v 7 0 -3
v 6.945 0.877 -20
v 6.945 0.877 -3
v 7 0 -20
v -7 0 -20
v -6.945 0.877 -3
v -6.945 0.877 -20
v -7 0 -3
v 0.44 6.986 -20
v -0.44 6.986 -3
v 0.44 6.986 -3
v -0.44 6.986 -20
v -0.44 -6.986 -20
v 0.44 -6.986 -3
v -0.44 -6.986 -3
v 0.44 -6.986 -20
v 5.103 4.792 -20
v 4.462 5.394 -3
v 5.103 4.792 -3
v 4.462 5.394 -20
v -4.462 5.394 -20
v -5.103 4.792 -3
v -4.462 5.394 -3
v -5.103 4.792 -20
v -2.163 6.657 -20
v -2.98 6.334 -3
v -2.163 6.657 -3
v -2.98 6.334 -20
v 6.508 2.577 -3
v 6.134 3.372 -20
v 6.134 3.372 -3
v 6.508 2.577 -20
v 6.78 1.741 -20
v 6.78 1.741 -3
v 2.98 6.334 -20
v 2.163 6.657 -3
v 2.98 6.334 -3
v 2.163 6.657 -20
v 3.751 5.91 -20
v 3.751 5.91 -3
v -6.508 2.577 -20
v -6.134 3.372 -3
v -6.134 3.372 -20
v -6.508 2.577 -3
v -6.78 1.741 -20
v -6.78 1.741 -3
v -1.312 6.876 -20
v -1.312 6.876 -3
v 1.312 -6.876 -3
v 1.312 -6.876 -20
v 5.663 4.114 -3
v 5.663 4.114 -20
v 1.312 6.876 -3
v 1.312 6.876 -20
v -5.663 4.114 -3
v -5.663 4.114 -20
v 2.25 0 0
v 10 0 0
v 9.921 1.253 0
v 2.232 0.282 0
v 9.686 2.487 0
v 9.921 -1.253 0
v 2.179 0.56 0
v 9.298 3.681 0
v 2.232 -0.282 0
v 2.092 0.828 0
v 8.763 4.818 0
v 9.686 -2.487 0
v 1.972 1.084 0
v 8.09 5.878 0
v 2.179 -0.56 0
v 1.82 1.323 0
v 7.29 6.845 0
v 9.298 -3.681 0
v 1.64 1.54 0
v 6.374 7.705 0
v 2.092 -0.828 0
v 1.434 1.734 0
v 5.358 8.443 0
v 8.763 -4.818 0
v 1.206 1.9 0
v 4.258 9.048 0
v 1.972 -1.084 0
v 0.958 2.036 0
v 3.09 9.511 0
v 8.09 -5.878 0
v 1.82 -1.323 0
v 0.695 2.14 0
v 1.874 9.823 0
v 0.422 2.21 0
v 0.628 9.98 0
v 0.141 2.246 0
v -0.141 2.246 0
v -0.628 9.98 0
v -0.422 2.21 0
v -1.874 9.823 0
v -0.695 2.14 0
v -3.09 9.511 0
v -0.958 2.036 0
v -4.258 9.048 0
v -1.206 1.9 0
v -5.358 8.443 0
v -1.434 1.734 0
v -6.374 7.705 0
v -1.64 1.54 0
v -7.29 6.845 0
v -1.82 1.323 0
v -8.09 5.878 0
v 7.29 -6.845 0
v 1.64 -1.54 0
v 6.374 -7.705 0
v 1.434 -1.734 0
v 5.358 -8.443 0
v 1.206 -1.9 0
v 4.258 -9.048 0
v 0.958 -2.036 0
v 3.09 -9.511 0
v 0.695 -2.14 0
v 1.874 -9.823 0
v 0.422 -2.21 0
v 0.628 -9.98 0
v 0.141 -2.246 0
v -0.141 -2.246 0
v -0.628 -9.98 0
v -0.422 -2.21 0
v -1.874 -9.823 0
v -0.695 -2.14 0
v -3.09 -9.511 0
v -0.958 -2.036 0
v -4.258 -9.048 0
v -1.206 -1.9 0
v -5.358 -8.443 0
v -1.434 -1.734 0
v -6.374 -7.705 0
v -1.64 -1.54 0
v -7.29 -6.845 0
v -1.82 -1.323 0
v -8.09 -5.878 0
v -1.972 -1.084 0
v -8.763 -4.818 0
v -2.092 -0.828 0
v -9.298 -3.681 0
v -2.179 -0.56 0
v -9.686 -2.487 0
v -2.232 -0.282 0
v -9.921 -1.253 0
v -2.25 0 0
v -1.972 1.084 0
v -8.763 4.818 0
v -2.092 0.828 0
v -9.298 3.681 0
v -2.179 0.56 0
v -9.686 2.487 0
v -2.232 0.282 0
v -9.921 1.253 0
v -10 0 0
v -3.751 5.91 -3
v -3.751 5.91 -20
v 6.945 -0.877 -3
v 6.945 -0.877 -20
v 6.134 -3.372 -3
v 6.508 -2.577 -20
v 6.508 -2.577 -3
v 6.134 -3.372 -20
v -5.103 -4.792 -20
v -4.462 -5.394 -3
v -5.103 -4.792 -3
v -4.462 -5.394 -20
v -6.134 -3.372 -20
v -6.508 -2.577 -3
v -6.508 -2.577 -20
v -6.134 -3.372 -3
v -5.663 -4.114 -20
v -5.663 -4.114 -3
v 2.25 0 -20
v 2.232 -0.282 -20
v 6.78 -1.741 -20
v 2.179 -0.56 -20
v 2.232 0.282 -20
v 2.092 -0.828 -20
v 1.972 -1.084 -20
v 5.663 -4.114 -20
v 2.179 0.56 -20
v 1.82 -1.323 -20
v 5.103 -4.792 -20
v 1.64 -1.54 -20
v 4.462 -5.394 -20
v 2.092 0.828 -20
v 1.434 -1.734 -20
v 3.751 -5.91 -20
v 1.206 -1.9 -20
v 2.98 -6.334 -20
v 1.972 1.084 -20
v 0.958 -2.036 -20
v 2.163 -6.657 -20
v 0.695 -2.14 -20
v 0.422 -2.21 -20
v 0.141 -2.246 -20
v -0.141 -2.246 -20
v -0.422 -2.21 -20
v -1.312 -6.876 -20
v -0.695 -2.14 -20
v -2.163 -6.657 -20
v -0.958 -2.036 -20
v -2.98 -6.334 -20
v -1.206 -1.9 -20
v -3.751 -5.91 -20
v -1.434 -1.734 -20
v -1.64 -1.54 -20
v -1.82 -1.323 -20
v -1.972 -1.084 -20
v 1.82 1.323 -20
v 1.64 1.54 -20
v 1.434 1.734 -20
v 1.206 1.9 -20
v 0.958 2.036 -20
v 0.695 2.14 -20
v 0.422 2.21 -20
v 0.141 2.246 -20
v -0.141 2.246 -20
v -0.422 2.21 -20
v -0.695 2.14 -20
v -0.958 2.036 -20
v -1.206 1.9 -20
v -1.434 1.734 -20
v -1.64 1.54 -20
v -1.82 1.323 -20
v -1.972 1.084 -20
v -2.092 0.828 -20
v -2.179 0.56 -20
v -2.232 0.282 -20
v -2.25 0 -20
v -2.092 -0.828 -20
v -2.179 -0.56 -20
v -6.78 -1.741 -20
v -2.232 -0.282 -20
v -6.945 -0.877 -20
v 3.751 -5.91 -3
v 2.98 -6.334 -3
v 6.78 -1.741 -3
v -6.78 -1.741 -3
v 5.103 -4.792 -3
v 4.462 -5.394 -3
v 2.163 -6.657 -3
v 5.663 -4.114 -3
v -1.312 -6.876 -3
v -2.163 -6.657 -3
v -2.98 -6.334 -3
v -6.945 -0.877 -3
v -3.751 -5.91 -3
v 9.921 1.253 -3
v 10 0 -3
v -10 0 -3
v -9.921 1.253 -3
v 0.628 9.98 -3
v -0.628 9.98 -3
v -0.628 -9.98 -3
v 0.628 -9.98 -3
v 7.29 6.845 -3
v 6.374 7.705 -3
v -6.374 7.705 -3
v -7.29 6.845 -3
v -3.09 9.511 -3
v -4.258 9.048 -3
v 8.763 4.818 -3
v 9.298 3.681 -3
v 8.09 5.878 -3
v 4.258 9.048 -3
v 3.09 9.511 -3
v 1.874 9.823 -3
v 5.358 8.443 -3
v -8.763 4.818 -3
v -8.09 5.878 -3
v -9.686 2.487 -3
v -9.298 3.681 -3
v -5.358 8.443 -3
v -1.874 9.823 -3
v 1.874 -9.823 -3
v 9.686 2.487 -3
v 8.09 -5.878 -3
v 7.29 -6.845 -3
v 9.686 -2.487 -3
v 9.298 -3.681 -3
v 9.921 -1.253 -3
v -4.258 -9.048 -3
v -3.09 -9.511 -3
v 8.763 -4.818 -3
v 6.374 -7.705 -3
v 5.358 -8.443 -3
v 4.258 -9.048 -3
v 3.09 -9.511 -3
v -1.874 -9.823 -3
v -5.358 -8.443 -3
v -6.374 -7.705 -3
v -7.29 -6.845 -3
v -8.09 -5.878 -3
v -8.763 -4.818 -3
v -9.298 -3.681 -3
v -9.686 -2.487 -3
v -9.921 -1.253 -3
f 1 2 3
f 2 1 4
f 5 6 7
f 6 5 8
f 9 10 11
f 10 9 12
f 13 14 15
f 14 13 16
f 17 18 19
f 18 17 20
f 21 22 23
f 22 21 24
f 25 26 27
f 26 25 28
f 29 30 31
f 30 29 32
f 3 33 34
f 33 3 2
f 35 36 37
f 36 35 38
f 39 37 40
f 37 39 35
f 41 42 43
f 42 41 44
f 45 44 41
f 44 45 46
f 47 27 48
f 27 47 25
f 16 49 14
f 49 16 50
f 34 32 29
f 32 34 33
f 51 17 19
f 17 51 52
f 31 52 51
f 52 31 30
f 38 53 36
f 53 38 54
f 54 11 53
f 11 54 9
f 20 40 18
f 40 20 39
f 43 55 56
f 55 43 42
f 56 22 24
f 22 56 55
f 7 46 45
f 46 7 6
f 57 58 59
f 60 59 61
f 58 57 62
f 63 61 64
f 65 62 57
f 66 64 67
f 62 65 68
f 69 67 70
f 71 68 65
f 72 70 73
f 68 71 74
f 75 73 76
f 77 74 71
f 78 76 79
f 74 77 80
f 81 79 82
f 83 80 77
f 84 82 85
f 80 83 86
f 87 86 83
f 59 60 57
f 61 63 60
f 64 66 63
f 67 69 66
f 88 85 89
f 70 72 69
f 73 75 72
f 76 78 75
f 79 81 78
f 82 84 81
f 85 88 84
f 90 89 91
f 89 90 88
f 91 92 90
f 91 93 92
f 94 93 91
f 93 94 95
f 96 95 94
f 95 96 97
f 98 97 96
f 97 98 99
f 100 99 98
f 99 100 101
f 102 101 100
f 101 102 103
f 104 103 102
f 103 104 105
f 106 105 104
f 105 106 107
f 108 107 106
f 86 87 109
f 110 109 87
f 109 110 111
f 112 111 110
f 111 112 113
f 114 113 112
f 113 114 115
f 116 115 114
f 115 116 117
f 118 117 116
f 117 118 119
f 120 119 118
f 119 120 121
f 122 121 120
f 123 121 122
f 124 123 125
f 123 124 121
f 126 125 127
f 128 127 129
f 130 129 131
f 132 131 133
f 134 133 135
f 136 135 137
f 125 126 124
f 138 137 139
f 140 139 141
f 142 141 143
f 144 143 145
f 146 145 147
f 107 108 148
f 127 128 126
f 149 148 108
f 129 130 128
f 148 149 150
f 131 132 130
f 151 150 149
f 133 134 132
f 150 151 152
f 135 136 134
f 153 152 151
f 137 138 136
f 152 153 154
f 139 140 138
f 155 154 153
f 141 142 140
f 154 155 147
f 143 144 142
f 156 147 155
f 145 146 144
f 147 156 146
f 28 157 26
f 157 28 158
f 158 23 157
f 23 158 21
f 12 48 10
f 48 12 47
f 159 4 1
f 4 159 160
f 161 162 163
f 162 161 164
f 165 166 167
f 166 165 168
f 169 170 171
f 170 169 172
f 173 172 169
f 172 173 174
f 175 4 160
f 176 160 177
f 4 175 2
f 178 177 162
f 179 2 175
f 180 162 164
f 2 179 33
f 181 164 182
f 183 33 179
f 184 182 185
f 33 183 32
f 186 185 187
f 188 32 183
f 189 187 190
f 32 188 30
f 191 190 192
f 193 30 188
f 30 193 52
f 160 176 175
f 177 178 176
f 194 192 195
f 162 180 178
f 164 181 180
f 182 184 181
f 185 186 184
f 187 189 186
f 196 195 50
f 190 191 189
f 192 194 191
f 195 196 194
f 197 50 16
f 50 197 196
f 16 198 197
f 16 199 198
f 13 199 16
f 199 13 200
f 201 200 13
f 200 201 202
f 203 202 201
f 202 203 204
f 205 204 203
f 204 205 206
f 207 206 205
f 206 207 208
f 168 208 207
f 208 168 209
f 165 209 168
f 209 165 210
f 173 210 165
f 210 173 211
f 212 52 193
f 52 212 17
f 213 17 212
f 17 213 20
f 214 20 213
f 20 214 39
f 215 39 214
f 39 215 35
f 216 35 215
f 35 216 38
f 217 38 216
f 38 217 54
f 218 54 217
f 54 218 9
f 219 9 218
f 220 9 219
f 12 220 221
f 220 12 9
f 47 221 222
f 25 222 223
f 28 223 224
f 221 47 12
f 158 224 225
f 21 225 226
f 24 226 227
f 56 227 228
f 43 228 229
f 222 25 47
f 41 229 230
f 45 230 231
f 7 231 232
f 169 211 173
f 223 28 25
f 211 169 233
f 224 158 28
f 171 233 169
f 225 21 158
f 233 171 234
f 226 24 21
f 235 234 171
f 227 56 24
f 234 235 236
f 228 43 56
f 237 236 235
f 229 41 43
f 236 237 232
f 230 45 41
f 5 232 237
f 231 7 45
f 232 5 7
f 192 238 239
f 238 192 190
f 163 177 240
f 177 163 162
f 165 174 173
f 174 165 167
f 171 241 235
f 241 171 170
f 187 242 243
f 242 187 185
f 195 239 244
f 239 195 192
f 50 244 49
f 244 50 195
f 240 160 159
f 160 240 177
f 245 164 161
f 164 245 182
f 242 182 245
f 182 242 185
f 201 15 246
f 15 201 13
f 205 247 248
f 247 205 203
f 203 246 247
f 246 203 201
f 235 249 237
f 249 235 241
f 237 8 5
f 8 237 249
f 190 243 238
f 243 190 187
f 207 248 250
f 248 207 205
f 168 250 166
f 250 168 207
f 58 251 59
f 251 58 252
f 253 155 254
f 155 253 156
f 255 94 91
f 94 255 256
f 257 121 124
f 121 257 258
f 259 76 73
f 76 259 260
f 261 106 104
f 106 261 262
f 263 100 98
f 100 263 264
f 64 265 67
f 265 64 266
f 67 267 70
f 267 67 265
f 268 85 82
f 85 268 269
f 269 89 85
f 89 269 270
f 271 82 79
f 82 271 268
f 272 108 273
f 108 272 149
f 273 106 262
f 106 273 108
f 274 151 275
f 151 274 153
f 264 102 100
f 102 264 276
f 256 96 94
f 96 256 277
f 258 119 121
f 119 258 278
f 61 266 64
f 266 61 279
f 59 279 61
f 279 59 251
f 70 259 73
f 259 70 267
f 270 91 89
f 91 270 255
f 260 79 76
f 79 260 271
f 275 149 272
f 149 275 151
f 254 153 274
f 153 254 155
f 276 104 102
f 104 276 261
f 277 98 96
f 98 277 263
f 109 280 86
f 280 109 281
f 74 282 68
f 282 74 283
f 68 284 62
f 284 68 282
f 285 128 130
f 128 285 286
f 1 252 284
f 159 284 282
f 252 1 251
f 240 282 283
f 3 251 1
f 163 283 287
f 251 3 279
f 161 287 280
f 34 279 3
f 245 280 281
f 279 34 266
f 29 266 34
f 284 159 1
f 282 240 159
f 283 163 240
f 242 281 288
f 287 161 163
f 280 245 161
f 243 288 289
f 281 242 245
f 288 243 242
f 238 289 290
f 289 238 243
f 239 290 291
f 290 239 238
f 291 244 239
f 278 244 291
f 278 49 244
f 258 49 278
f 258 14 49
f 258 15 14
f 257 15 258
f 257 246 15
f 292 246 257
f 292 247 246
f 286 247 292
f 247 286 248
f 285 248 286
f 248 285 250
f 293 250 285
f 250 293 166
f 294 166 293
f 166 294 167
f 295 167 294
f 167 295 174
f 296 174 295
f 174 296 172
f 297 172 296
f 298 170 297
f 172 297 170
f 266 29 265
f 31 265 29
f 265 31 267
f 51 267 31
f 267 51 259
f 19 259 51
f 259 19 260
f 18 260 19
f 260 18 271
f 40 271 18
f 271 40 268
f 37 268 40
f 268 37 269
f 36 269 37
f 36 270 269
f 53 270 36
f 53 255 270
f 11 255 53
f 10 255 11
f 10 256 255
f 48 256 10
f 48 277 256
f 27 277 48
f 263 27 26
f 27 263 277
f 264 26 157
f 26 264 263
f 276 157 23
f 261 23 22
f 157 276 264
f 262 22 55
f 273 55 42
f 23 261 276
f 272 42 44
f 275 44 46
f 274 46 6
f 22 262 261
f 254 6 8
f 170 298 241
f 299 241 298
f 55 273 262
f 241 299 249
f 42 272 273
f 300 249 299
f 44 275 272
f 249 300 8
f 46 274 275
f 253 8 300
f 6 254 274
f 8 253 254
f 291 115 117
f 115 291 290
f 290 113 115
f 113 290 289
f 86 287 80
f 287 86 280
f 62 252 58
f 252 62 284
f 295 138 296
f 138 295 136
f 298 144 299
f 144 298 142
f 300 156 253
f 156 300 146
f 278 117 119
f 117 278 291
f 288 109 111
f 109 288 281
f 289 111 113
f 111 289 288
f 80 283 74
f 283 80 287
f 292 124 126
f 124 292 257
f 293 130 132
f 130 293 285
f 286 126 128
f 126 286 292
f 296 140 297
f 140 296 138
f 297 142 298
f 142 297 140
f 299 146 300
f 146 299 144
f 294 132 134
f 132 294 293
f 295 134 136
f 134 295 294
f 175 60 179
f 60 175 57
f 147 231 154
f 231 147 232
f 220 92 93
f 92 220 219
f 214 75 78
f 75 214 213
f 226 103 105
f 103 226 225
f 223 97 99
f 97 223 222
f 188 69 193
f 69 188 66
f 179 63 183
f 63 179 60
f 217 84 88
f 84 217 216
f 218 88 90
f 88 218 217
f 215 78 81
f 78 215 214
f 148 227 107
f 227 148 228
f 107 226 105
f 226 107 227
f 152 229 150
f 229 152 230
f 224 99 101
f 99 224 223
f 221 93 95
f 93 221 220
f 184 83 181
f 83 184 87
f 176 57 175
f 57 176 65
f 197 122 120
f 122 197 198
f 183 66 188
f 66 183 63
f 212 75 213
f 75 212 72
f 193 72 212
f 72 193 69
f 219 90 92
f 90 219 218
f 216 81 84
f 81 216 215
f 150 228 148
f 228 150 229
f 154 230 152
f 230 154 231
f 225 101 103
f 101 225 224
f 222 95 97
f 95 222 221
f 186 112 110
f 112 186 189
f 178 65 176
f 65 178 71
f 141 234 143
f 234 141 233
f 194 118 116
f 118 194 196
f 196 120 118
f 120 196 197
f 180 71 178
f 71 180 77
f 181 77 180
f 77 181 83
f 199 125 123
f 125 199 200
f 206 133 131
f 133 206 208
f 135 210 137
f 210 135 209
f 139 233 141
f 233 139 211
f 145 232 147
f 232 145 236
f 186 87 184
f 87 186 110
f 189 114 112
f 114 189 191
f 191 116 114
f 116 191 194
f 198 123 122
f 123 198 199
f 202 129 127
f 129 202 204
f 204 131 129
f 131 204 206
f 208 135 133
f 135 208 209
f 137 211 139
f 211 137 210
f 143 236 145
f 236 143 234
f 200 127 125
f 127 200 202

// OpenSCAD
$fn = 50;


difference() {
	union() {
		translate(v = [0, 0, -20.0000000000]) {
			cylinder(h = 20, r = 7.0000000000);
		}
		translate(v = [0, 0, -3.0000000000]) {
			cylinder(h = 3, r = 10.0000000000);
		}
	}
	union() {
		#translate(v = [0, 0, -20]) {
			cylinder(h = 20, r = 2.2500000000);
		}
	}
}
